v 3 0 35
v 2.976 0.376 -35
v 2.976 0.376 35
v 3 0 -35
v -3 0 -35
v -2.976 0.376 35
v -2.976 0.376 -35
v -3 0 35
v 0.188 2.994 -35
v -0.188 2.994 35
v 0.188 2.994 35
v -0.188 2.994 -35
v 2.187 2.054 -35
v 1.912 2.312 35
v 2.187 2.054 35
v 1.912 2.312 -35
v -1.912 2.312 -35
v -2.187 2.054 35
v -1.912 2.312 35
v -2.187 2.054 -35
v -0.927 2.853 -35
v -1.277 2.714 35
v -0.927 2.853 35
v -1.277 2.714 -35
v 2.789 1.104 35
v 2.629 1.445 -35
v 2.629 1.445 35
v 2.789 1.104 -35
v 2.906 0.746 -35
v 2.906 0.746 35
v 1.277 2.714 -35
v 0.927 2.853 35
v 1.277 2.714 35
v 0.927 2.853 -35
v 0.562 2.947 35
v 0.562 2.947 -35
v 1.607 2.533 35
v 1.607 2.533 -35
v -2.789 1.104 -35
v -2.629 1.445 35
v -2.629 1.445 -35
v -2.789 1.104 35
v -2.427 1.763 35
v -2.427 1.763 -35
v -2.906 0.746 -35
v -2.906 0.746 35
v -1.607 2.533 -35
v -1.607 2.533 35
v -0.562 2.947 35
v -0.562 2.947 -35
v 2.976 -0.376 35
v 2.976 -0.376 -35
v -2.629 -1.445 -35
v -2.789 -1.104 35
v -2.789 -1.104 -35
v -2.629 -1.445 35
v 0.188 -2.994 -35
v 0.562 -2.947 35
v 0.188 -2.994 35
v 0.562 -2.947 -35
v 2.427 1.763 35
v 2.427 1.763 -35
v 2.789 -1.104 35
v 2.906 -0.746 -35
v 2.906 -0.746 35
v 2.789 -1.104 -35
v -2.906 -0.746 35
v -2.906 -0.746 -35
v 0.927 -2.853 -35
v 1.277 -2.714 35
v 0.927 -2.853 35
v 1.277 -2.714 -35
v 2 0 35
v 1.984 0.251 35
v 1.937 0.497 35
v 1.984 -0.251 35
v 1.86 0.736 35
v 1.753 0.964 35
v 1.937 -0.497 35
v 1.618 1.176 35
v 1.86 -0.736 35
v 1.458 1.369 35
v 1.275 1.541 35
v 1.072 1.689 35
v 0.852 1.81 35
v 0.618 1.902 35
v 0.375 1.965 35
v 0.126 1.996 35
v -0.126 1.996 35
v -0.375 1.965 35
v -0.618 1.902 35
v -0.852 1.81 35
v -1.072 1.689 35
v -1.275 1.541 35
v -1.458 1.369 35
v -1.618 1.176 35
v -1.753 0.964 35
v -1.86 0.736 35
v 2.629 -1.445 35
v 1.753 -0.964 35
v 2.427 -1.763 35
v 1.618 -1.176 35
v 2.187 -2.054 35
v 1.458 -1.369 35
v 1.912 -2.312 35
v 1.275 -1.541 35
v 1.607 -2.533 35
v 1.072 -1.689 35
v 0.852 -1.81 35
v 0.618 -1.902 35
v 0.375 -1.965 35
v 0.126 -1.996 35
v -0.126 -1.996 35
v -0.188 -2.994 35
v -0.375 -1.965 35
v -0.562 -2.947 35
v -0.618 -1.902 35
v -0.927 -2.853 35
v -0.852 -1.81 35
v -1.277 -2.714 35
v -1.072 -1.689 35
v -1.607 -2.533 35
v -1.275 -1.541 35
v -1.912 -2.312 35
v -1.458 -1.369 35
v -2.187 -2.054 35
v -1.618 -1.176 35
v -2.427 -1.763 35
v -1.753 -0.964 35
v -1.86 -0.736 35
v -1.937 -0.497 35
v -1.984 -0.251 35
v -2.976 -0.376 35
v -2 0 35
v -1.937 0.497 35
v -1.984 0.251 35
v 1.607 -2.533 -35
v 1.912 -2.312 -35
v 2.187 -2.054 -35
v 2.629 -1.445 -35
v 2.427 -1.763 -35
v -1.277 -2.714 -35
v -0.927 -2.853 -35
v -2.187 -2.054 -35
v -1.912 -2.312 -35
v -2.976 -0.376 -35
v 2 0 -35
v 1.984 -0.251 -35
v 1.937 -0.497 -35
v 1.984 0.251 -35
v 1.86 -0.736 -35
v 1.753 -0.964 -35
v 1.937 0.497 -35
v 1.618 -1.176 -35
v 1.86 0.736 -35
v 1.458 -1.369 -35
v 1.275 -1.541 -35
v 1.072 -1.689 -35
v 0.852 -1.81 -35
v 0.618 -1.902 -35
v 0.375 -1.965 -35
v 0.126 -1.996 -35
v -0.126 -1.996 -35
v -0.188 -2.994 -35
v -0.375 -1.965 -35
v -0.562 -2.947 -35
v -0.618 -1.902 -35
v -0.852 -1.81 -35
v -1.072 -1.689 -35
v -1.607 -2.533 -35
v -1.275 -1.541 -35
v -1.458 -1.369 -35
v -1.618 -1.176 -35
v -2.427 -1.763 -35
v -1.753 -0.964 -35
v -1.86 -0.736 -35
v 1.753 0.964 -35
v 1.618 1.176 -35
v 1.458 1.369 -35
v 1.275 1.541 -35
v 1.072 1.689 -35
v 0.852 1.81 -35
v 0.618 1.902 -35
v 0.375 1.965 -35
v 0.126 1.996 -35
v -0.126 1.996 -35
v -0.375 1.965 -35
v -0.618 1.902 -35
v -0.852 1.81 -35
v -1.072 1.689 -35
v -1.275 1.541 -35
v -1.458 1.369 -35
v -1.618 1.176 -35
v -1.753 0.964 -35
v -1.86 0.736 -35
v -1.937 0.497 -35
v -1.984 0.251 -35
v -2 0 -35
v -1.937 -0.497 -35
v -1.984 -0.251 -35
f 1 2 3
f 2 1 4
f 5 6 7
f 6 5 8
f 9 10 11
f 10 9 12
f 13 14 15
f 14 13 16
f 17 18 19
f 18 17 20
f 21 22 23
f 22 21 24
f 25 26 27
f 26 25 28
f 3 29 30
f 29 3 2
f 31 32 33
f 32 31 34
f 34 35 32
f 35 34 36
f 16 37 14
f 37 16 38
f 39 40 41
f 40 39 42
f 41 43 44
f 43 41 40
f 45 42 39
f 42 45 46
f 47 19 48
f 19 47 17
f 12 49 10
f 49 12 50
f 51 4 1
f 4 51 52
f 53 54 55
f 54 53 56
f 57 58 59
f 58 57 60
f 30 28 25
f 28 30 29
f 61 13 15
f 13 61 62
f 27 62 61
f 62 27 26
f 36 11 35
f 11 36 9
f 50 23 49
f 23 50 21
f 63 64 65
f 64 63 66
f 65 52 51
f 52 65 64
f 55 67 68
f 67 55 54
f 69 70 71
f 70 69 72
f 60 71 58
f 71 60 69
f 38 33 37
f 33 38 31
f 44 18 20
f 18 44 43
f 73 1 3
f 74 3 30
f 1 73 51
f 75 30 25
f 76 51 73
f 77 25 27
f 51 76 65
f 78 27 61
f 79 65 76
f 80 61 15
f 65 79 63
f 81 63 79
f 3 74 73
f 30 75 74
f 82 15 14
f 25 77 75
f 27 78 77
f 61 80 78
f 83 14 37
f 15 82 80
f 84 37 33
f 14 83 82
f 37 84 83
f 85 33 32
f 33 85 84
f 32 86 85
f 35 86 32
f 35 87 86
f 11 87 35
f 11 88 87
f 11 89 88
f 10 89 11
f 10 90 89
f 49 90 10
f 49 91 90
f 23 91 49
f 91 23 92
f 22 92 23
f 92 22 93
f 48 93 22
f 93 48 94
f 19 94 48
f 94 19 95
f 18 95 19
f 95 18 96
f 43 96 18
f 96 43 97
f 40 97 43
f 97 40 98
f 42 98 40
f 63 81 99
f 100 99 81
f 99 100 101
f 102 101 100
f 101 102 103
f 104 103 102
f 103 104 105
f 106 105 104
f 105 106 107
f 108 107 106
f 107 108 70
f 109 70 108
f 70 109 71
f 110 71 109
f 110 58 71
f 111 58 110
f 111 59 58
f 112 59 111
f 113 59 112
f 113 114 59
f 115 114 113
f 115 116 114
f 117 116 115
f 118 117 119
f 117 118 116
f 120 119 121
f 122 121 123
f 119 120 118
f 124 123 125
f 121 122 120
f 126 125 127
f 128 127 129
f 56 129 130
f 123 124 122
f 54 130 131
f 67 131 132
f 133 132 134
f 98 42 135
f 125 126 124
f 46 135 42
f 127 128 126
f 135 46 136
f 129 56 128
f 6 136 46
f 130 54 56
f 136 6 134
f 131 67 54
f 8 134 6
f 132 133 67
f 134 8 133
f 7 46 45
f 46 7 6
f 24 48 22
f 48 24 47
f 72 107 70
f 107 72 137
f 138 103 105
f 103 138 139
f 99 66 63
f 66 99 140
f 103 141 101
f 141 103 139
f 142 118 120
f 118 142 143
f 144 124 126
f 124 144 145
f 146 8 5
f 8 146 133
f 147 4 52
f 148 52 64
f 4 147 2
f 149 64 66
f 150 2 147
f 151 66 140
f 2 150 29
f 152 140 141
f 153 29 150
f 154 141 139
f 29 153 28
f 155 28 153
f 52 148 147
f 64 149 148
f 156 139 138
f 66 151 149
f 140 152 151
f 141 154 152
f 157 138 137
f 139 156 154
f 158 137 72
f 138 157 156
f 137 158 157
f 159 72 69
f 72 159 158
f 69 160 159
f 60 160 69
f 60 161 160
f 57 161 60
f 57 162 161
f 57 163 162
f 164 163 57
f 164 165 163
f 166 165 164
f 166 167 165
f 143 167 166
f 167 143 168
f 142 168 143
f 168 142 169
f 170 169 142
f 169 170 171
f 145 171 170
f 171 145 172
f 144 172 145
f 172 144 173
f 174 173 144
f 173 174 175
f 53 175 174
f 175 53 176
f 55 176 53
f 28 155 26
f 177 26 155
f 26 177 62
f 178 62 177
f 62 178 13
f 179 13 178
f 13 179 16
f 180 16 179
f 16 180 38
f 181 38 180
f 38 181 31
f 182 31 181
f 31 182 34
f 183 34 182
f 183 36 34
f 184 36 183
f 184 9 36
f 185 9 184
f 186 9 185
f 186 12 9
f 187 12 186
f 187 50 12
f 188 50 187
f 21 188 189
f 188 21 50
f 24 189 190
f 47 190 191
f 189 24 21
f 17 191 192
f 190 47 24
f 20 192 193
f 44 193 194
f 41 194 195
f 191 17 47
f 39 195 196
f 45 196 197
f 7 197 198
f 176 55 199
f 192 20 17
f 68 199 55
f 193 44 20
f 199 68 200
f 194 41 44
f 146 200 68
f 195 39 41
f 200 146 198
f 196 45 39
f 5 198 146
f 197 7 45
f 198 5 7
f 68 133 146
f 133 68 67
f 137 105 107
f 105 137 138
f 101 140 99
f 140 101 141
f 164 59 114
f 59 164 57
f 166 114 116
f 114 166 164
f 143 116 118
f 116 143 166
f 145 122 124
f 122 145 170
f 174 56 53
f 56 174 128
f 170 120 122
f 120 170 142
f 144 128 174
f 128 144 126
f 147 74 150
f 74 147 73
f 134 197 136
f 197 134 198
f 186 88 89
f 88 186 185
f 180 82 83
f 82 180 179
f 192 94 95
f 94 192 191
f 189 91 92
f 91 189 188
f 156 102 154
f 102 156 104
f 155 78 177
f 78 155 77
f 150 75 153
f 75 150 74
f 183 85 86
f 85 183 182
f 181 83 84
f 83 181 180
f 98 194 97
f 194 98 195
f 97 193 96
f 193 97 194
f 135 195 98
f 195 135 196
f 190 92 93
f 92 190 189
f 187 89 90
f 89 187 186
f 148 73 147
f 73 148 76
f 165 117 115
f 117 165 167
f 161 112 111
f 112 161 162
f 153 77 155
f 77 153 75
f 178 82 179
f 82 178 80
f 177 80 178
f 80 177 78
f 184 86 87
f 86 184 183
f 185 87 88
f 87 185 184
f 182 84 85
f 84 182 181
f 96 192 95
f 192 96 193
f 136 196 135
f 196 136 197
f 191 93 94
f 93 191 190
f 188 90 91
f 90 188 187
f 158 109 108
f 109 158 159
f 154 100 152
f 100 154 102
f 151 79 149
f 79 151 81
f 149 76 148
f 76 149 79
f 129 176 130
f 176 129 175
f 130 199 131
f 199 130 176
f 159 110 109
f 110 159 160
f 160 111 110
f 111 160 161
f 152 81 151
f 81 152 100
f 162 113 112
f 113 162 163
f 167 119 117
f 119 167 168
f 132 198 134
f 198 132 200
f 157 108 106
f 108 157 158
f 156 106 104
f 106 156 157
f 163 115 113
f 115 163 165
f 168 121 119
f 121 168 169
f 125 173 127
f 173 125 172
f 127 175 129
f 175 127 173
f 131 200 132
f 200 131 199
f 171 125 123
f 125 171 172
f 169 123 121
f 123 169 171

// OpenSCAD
$fn = 50;


difference() {
	union() {
		translate(v = [0, 0, -35.0000000000]) {
			cylinder(h = 70, r = 3.0000000000);
		}
	}
	union() {
		translate(v = [0, 0, -100.0000000000]) {
			cylinder(h = 200, r = 2.0000000000);
		}
	}
}
